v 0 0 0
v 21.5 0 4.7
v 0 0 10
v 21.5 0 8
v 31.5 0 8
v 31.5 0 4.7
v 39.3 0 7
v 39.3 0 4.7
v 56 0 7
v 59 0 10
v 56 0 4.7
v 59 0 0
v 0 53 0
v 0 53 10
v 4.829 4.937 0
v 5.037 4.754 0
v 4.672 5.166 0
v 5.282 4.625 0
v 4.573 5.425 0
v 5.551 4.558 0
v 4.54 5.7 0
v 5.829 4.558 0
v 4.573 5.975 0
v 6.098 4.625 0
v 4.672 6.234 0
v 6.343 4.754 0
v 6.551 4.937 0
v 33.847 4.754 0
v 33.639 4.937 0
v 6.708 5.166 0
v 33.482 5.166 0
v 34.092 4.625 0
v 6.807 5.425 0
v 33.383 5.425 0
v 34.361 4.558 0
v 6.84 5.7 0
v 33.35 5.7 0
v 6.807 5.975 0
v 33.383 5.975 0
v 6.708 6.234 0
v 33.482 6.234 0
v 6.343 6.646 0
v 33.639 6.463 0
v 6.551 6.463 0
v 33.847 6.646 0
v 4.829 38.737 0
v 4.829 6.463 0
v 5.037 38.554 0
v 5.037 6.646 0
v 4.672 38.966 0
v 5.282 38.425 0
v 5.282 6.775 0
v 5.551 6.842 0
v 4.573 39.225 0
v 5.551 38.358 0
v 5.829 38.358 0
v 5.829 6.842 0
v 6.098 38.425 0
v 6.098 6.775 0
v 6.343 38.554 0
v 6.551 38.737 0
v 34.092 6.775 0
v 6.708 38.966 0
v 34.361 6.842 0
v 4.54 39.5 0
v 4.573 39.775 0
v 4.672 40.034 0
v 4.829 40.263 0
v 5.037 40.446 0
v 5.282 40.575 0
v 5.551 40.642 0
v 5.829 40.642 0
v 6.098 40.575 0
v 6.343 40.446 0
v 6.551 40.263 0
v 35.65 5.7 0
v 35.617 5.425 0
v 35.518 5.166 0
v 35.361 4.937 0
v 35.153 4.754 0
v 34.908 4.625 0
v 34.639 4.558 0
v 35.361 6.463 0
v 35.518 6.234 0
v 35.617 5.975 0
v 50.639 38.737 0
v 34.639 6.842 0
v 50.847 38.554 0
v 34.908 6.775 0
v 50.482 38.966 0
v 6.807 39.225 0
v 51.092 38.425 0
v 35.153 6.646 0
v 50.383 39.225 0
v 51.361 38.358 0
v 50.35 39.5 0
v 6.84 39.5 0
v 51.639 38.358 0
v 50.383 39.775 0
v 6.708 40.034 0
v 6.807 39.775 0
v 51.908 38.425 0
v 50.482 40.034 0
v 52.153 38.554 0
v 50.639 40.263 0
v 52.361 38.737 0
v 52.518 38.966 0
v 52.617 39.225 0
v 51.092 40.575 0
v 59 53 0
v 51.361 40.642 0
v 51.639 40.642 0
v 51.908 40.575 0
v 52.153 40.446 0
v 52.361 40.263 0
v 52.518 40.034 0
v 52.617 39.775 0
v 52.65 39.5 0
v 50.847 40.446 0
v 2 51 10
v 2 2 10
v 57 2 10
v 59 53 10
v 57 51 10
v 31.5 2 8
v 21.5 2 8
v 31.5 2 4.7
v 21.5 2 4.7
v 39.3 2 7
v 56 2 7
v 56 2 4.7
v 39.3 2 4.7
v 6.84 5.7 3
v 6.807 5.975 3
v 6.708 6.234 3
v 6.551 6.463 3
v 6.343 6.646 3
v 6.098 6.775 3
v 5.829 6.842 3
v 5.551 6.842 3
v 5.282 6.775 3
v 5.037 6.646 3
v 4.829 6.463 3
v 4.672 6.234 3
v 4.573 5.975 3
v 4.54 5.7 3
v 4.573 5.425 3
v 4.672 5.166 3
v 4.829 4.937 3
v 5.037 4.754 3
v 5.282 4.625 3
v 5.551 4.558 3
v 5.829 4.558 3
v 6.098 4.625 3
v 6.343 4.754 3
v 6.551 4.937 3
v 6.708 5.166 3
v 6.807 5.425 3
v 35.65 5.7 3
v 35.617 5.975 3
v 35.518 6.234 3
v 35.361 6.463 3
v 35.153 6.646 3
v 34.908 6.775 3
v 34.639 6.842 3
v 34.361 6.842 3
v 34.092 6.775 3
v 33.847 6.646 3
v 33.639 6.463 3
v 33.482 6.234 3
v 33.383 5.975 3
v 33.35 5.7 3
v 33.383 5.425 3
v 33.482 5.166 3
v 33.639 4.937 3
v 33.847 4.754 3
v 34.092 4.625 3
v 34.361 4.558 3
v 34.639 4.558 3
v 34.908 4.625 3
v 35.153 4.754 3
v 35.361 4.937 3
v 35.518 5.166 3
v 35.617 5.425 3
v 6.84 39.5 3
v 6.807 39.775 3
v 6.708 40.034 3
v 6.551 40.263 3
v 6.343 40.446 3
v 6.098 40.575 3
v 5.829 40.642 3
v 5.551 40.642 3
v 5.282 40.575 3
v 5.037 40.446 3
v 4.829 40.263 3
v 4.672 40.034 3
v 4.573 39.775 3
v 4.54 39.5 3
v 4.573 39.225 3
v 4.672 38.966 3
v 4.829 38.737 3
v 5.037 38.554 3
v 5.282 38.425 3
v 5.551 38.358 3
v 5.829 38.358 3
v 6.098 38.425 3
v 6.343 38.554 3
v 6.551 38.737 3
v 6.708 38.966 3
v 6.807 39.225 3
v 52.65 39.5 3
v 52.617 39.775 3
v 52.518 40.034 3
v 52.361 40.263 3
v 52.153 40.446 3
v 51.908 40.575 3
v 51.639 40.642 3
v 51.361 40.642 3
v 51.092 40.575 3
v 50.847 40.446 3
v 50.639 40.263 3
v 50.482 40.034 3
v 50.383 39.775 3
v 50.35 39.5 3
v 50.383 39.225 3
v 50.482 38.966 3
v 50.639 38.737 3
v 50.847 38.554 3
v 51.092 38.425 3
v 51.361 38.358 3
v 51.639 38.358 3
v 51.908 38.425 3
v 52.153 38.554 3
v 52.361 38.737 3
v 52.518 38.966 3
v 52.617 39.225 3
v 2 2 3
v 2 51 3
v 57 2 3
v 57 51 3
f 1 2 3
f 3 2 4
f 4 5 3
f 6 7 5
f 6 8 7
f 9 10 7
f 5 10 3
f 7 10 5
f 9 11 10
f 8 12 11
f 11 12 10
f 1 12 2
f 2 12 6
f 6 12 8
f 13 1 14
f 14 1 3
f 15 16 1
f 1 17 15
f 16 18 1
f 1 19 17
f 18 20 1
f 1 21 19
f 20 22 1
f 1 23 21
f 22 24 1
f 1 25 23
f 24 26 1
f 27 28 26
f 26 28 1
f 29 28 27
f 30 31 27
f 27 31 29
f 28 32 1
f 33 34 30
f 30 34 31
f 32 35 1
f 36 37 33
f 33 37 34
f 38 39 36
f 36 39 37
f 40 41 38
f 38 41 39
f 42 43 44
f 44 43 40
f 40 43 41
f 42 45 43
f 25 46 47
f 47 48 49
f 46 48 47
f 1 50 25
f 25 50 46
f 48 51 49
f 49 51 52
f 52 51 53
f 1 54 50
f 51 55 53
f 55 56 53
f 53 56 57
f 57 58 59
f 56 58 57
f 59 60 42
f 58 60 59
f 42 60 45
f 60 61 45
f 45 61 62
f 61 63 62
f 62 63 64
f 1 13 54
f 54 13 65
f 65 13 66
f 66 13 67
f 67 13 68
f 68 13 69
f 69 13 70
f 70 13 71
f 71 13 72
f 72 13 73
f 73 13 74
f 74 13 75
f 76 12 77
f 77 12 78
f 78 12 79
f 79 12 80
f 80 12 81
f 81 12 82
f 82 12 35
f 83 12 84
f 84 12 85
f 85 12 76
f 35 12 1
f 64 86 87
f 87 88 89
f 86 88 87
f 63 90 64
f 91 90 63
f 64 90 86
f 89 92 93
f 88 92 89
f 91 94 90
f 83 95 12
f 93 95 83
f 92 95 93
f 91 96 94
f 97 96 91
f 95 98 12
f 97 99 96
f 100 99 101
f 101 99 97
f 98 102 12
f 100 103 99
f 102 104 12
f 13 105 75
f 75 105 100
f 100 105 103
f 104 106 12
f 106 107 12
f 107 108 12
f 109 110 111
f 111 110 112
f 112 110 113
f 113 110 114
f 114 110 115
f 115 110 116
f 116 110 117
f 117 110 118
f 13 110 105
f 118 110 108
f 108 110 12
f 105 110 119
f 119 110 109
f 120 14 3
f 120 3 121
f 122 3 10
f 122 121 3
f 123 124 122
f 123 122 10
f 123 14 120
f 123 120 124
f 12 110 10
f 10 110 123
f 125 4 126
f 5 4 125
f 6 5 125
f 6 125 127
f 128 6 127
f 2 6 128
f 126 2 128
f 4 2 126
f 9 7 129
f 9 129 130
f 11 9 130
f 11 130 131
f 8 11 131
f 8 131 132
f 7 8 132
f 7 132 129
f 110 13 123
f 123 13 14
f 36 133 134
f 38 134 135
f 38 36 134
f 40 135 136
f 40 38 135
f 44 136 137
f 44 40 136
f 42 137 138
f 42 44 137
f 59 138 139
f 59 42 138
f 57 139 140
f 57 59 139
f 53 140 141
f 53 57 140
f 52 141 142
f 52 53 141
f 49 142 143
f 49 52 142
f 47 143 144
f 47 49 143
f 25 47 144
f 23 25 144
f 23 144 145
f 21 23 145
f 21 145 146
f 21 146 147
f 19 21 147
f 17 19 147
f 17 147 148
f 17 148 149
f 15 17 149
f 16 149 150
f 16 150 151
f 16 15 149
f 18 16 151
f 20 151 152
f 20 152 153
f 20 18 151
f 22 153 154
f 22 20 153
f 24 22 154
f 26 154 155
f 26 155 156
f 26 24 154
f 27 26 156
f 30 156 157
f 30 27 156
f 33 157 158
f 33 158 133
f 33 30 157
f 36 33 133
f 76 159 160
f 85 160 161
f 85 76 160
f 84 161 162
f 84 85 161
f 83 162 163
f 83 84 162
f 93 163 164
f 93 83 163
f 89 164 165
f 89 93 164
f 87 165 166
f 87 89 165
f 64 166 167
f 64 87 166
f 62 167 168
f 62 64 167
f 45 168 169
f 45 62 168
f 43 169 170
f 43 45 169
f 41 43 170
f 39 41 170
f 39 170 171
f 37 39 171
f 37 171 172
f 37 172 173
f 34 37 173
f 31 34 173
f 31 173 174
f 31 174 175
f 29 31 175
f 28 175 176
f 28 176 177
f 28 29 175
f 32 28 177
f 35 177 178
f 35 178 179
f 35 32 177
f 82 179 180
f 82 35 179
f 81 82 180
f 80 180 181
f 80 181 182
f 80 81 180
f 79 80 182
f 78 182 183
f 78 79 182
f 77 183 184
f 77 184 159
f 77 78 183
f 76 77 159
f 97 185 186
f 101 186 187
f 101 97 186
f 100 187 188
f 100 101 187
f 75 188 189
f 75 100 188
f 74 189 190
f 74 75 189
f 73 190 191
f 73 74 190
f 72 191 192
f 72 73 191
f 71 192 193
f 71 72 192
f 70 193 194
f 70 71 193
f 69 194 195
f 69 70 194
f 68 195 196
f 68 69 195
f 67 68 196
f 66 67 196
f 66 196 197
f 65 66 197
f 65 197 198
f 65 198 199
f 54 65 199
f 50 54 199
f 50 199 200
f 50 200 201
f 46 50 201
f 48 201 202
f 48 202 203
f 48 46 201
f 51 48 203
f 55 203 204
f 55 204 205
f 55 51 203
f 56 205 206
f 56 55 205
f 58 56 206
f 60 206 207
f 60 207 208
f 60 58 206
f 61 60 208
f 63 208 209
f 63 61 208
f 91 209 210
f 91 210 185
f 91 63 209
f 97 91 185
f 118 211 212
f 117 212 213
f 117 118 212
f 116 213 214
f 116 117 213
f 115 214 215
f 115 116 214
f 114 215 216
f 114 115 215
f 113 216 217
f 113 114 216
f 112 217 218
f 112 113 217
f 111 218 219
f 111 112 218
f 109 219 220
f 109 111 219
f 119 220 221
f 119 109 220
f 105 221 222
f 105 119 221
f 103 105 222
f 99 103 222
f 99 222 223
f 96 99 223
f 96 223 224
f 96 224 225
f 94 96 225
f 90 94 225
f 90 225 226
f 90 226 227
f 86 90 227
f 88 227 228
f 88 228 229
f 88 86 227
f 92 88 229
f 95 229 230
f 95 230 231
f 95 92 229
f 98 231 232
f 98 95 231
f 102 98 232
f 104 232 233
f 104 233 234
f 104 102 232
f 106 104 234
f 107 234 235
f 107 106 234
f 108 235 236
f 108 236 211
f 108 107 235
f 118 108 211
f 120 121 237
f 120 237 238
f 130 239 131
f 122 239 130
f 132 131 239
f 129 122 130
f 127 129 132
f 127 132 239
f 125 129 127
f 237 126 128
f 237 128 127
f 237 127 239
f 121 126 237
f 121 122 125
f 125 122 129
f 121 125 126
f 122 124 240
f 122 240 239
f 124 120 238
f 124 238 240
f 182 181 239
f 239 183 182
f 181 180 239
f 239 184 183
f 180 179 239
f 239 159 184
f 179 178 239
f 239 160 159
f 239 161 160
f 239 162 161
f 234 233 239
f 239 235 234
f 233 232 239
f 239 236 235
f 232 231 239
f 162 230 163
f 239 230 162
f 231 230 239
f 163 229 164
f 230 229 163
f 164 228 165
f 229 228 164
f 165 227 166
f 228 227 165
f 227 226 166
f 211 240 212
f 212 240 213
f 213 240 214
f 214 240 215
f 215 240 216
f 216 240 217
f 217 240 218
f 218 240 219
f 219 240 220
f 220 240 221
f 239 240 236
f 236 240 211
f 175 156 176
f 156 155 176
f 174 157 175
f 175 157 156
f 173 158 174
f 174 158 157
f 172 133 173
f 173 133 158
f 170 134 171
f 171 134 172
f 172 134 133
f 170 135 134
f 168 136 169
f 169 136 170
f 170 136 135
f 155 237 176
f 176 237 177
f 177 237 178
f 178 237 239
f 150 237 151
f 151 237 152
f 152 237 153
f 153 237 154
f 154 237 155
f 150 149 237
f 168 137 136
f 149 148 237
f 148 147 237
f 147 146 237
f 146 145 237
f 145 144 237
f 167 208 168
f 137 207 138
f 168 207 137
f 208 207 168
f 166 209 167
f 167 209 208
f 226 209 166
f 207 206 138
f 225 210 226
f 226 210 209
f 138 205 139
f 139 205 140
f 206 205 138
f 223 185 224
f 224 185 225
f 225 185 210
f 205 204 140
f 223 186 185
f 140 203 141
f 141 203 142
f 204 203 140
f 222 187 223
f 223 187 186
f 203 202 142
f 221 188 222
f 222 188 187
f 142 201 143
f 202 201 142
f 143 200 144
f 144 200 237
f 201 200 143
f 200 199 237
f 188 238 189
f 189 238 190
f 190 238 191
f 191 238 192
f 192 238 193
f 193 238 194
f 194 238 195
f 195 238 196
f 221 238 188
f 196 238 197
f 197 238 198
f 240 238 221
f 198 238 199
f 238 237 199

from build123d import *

# Parameters (mm, degrees)
SKETCH_W        = 59
SKETCH_H        = 53
PAD_DEPTH       = 10
SKETCH001_W     = 55
SKETCH001_H     = 49
POCKET_DEPTH    = 7
SKETCH002_R     = 1.15
HOLE_DEPTH      = 25
SKETCH003_W     = 10
SKETCH003_H     = 3.3
SKETCH003_W_2   = 16.7
SKETCH003_H_2   = 2.3
POCKET001_DEPTH = 5


with BuildPart() as part:
    # Sketch → Pad (new body)
    with BuildSketch(Plane.XY):
        with Locations((29.5, 26.5)):
            Rectangle(SKETCH_W, SKETCH_H)
    extrude(amount=PAD_DEPTH)

    # Sketch001 (on Face6 of Pad) → Pocket (cut)
    with BuildSketch(Plane.XY.offset(10)):
        with Locations((29.5, 26.5)):
            Rectangle(SKETCH001_W, SKETCH001_H)
    extrude(amount=-POCKET_DEPTH, mode=Mode.SUBTRACT)

    # Sketch002 (on Face11 of Pocket) → Hole (cut)
    with BuildSketch(Plane.XY.offset(3)):
        with Locations((5.69, 39.5)):
            Circle(SKETCH002_R)
        with Locations((34.5, 5.7)):
            Circle(SKETCH002_R)
        with Locations((5.69, 5.7)):
            Circle(SKETCH002_R)
        with Locations((51.5, 39.5)):
            Circle(SKETCH002_R)
    extrude(amount=-HOLE_DEPTH, mode=Mode.SUBTRACT)

    # Sketch003 (on Face1 of Hole) → Pocket001 (cut)
    with BuildSketch(Plane.XZ):
        with Locations((26.5, 6.35)):
            Rectangle(SKETCH003_W, SKETCH003_H)
        with Locations((47.65, 5.85)):
            Rectangle(SKETCH003_W_2, SKETCH003_H_2)
    extrude(amount=-POCKET001_DEPTH, mode=Mode.SUBTRACT)


solid = part.part
